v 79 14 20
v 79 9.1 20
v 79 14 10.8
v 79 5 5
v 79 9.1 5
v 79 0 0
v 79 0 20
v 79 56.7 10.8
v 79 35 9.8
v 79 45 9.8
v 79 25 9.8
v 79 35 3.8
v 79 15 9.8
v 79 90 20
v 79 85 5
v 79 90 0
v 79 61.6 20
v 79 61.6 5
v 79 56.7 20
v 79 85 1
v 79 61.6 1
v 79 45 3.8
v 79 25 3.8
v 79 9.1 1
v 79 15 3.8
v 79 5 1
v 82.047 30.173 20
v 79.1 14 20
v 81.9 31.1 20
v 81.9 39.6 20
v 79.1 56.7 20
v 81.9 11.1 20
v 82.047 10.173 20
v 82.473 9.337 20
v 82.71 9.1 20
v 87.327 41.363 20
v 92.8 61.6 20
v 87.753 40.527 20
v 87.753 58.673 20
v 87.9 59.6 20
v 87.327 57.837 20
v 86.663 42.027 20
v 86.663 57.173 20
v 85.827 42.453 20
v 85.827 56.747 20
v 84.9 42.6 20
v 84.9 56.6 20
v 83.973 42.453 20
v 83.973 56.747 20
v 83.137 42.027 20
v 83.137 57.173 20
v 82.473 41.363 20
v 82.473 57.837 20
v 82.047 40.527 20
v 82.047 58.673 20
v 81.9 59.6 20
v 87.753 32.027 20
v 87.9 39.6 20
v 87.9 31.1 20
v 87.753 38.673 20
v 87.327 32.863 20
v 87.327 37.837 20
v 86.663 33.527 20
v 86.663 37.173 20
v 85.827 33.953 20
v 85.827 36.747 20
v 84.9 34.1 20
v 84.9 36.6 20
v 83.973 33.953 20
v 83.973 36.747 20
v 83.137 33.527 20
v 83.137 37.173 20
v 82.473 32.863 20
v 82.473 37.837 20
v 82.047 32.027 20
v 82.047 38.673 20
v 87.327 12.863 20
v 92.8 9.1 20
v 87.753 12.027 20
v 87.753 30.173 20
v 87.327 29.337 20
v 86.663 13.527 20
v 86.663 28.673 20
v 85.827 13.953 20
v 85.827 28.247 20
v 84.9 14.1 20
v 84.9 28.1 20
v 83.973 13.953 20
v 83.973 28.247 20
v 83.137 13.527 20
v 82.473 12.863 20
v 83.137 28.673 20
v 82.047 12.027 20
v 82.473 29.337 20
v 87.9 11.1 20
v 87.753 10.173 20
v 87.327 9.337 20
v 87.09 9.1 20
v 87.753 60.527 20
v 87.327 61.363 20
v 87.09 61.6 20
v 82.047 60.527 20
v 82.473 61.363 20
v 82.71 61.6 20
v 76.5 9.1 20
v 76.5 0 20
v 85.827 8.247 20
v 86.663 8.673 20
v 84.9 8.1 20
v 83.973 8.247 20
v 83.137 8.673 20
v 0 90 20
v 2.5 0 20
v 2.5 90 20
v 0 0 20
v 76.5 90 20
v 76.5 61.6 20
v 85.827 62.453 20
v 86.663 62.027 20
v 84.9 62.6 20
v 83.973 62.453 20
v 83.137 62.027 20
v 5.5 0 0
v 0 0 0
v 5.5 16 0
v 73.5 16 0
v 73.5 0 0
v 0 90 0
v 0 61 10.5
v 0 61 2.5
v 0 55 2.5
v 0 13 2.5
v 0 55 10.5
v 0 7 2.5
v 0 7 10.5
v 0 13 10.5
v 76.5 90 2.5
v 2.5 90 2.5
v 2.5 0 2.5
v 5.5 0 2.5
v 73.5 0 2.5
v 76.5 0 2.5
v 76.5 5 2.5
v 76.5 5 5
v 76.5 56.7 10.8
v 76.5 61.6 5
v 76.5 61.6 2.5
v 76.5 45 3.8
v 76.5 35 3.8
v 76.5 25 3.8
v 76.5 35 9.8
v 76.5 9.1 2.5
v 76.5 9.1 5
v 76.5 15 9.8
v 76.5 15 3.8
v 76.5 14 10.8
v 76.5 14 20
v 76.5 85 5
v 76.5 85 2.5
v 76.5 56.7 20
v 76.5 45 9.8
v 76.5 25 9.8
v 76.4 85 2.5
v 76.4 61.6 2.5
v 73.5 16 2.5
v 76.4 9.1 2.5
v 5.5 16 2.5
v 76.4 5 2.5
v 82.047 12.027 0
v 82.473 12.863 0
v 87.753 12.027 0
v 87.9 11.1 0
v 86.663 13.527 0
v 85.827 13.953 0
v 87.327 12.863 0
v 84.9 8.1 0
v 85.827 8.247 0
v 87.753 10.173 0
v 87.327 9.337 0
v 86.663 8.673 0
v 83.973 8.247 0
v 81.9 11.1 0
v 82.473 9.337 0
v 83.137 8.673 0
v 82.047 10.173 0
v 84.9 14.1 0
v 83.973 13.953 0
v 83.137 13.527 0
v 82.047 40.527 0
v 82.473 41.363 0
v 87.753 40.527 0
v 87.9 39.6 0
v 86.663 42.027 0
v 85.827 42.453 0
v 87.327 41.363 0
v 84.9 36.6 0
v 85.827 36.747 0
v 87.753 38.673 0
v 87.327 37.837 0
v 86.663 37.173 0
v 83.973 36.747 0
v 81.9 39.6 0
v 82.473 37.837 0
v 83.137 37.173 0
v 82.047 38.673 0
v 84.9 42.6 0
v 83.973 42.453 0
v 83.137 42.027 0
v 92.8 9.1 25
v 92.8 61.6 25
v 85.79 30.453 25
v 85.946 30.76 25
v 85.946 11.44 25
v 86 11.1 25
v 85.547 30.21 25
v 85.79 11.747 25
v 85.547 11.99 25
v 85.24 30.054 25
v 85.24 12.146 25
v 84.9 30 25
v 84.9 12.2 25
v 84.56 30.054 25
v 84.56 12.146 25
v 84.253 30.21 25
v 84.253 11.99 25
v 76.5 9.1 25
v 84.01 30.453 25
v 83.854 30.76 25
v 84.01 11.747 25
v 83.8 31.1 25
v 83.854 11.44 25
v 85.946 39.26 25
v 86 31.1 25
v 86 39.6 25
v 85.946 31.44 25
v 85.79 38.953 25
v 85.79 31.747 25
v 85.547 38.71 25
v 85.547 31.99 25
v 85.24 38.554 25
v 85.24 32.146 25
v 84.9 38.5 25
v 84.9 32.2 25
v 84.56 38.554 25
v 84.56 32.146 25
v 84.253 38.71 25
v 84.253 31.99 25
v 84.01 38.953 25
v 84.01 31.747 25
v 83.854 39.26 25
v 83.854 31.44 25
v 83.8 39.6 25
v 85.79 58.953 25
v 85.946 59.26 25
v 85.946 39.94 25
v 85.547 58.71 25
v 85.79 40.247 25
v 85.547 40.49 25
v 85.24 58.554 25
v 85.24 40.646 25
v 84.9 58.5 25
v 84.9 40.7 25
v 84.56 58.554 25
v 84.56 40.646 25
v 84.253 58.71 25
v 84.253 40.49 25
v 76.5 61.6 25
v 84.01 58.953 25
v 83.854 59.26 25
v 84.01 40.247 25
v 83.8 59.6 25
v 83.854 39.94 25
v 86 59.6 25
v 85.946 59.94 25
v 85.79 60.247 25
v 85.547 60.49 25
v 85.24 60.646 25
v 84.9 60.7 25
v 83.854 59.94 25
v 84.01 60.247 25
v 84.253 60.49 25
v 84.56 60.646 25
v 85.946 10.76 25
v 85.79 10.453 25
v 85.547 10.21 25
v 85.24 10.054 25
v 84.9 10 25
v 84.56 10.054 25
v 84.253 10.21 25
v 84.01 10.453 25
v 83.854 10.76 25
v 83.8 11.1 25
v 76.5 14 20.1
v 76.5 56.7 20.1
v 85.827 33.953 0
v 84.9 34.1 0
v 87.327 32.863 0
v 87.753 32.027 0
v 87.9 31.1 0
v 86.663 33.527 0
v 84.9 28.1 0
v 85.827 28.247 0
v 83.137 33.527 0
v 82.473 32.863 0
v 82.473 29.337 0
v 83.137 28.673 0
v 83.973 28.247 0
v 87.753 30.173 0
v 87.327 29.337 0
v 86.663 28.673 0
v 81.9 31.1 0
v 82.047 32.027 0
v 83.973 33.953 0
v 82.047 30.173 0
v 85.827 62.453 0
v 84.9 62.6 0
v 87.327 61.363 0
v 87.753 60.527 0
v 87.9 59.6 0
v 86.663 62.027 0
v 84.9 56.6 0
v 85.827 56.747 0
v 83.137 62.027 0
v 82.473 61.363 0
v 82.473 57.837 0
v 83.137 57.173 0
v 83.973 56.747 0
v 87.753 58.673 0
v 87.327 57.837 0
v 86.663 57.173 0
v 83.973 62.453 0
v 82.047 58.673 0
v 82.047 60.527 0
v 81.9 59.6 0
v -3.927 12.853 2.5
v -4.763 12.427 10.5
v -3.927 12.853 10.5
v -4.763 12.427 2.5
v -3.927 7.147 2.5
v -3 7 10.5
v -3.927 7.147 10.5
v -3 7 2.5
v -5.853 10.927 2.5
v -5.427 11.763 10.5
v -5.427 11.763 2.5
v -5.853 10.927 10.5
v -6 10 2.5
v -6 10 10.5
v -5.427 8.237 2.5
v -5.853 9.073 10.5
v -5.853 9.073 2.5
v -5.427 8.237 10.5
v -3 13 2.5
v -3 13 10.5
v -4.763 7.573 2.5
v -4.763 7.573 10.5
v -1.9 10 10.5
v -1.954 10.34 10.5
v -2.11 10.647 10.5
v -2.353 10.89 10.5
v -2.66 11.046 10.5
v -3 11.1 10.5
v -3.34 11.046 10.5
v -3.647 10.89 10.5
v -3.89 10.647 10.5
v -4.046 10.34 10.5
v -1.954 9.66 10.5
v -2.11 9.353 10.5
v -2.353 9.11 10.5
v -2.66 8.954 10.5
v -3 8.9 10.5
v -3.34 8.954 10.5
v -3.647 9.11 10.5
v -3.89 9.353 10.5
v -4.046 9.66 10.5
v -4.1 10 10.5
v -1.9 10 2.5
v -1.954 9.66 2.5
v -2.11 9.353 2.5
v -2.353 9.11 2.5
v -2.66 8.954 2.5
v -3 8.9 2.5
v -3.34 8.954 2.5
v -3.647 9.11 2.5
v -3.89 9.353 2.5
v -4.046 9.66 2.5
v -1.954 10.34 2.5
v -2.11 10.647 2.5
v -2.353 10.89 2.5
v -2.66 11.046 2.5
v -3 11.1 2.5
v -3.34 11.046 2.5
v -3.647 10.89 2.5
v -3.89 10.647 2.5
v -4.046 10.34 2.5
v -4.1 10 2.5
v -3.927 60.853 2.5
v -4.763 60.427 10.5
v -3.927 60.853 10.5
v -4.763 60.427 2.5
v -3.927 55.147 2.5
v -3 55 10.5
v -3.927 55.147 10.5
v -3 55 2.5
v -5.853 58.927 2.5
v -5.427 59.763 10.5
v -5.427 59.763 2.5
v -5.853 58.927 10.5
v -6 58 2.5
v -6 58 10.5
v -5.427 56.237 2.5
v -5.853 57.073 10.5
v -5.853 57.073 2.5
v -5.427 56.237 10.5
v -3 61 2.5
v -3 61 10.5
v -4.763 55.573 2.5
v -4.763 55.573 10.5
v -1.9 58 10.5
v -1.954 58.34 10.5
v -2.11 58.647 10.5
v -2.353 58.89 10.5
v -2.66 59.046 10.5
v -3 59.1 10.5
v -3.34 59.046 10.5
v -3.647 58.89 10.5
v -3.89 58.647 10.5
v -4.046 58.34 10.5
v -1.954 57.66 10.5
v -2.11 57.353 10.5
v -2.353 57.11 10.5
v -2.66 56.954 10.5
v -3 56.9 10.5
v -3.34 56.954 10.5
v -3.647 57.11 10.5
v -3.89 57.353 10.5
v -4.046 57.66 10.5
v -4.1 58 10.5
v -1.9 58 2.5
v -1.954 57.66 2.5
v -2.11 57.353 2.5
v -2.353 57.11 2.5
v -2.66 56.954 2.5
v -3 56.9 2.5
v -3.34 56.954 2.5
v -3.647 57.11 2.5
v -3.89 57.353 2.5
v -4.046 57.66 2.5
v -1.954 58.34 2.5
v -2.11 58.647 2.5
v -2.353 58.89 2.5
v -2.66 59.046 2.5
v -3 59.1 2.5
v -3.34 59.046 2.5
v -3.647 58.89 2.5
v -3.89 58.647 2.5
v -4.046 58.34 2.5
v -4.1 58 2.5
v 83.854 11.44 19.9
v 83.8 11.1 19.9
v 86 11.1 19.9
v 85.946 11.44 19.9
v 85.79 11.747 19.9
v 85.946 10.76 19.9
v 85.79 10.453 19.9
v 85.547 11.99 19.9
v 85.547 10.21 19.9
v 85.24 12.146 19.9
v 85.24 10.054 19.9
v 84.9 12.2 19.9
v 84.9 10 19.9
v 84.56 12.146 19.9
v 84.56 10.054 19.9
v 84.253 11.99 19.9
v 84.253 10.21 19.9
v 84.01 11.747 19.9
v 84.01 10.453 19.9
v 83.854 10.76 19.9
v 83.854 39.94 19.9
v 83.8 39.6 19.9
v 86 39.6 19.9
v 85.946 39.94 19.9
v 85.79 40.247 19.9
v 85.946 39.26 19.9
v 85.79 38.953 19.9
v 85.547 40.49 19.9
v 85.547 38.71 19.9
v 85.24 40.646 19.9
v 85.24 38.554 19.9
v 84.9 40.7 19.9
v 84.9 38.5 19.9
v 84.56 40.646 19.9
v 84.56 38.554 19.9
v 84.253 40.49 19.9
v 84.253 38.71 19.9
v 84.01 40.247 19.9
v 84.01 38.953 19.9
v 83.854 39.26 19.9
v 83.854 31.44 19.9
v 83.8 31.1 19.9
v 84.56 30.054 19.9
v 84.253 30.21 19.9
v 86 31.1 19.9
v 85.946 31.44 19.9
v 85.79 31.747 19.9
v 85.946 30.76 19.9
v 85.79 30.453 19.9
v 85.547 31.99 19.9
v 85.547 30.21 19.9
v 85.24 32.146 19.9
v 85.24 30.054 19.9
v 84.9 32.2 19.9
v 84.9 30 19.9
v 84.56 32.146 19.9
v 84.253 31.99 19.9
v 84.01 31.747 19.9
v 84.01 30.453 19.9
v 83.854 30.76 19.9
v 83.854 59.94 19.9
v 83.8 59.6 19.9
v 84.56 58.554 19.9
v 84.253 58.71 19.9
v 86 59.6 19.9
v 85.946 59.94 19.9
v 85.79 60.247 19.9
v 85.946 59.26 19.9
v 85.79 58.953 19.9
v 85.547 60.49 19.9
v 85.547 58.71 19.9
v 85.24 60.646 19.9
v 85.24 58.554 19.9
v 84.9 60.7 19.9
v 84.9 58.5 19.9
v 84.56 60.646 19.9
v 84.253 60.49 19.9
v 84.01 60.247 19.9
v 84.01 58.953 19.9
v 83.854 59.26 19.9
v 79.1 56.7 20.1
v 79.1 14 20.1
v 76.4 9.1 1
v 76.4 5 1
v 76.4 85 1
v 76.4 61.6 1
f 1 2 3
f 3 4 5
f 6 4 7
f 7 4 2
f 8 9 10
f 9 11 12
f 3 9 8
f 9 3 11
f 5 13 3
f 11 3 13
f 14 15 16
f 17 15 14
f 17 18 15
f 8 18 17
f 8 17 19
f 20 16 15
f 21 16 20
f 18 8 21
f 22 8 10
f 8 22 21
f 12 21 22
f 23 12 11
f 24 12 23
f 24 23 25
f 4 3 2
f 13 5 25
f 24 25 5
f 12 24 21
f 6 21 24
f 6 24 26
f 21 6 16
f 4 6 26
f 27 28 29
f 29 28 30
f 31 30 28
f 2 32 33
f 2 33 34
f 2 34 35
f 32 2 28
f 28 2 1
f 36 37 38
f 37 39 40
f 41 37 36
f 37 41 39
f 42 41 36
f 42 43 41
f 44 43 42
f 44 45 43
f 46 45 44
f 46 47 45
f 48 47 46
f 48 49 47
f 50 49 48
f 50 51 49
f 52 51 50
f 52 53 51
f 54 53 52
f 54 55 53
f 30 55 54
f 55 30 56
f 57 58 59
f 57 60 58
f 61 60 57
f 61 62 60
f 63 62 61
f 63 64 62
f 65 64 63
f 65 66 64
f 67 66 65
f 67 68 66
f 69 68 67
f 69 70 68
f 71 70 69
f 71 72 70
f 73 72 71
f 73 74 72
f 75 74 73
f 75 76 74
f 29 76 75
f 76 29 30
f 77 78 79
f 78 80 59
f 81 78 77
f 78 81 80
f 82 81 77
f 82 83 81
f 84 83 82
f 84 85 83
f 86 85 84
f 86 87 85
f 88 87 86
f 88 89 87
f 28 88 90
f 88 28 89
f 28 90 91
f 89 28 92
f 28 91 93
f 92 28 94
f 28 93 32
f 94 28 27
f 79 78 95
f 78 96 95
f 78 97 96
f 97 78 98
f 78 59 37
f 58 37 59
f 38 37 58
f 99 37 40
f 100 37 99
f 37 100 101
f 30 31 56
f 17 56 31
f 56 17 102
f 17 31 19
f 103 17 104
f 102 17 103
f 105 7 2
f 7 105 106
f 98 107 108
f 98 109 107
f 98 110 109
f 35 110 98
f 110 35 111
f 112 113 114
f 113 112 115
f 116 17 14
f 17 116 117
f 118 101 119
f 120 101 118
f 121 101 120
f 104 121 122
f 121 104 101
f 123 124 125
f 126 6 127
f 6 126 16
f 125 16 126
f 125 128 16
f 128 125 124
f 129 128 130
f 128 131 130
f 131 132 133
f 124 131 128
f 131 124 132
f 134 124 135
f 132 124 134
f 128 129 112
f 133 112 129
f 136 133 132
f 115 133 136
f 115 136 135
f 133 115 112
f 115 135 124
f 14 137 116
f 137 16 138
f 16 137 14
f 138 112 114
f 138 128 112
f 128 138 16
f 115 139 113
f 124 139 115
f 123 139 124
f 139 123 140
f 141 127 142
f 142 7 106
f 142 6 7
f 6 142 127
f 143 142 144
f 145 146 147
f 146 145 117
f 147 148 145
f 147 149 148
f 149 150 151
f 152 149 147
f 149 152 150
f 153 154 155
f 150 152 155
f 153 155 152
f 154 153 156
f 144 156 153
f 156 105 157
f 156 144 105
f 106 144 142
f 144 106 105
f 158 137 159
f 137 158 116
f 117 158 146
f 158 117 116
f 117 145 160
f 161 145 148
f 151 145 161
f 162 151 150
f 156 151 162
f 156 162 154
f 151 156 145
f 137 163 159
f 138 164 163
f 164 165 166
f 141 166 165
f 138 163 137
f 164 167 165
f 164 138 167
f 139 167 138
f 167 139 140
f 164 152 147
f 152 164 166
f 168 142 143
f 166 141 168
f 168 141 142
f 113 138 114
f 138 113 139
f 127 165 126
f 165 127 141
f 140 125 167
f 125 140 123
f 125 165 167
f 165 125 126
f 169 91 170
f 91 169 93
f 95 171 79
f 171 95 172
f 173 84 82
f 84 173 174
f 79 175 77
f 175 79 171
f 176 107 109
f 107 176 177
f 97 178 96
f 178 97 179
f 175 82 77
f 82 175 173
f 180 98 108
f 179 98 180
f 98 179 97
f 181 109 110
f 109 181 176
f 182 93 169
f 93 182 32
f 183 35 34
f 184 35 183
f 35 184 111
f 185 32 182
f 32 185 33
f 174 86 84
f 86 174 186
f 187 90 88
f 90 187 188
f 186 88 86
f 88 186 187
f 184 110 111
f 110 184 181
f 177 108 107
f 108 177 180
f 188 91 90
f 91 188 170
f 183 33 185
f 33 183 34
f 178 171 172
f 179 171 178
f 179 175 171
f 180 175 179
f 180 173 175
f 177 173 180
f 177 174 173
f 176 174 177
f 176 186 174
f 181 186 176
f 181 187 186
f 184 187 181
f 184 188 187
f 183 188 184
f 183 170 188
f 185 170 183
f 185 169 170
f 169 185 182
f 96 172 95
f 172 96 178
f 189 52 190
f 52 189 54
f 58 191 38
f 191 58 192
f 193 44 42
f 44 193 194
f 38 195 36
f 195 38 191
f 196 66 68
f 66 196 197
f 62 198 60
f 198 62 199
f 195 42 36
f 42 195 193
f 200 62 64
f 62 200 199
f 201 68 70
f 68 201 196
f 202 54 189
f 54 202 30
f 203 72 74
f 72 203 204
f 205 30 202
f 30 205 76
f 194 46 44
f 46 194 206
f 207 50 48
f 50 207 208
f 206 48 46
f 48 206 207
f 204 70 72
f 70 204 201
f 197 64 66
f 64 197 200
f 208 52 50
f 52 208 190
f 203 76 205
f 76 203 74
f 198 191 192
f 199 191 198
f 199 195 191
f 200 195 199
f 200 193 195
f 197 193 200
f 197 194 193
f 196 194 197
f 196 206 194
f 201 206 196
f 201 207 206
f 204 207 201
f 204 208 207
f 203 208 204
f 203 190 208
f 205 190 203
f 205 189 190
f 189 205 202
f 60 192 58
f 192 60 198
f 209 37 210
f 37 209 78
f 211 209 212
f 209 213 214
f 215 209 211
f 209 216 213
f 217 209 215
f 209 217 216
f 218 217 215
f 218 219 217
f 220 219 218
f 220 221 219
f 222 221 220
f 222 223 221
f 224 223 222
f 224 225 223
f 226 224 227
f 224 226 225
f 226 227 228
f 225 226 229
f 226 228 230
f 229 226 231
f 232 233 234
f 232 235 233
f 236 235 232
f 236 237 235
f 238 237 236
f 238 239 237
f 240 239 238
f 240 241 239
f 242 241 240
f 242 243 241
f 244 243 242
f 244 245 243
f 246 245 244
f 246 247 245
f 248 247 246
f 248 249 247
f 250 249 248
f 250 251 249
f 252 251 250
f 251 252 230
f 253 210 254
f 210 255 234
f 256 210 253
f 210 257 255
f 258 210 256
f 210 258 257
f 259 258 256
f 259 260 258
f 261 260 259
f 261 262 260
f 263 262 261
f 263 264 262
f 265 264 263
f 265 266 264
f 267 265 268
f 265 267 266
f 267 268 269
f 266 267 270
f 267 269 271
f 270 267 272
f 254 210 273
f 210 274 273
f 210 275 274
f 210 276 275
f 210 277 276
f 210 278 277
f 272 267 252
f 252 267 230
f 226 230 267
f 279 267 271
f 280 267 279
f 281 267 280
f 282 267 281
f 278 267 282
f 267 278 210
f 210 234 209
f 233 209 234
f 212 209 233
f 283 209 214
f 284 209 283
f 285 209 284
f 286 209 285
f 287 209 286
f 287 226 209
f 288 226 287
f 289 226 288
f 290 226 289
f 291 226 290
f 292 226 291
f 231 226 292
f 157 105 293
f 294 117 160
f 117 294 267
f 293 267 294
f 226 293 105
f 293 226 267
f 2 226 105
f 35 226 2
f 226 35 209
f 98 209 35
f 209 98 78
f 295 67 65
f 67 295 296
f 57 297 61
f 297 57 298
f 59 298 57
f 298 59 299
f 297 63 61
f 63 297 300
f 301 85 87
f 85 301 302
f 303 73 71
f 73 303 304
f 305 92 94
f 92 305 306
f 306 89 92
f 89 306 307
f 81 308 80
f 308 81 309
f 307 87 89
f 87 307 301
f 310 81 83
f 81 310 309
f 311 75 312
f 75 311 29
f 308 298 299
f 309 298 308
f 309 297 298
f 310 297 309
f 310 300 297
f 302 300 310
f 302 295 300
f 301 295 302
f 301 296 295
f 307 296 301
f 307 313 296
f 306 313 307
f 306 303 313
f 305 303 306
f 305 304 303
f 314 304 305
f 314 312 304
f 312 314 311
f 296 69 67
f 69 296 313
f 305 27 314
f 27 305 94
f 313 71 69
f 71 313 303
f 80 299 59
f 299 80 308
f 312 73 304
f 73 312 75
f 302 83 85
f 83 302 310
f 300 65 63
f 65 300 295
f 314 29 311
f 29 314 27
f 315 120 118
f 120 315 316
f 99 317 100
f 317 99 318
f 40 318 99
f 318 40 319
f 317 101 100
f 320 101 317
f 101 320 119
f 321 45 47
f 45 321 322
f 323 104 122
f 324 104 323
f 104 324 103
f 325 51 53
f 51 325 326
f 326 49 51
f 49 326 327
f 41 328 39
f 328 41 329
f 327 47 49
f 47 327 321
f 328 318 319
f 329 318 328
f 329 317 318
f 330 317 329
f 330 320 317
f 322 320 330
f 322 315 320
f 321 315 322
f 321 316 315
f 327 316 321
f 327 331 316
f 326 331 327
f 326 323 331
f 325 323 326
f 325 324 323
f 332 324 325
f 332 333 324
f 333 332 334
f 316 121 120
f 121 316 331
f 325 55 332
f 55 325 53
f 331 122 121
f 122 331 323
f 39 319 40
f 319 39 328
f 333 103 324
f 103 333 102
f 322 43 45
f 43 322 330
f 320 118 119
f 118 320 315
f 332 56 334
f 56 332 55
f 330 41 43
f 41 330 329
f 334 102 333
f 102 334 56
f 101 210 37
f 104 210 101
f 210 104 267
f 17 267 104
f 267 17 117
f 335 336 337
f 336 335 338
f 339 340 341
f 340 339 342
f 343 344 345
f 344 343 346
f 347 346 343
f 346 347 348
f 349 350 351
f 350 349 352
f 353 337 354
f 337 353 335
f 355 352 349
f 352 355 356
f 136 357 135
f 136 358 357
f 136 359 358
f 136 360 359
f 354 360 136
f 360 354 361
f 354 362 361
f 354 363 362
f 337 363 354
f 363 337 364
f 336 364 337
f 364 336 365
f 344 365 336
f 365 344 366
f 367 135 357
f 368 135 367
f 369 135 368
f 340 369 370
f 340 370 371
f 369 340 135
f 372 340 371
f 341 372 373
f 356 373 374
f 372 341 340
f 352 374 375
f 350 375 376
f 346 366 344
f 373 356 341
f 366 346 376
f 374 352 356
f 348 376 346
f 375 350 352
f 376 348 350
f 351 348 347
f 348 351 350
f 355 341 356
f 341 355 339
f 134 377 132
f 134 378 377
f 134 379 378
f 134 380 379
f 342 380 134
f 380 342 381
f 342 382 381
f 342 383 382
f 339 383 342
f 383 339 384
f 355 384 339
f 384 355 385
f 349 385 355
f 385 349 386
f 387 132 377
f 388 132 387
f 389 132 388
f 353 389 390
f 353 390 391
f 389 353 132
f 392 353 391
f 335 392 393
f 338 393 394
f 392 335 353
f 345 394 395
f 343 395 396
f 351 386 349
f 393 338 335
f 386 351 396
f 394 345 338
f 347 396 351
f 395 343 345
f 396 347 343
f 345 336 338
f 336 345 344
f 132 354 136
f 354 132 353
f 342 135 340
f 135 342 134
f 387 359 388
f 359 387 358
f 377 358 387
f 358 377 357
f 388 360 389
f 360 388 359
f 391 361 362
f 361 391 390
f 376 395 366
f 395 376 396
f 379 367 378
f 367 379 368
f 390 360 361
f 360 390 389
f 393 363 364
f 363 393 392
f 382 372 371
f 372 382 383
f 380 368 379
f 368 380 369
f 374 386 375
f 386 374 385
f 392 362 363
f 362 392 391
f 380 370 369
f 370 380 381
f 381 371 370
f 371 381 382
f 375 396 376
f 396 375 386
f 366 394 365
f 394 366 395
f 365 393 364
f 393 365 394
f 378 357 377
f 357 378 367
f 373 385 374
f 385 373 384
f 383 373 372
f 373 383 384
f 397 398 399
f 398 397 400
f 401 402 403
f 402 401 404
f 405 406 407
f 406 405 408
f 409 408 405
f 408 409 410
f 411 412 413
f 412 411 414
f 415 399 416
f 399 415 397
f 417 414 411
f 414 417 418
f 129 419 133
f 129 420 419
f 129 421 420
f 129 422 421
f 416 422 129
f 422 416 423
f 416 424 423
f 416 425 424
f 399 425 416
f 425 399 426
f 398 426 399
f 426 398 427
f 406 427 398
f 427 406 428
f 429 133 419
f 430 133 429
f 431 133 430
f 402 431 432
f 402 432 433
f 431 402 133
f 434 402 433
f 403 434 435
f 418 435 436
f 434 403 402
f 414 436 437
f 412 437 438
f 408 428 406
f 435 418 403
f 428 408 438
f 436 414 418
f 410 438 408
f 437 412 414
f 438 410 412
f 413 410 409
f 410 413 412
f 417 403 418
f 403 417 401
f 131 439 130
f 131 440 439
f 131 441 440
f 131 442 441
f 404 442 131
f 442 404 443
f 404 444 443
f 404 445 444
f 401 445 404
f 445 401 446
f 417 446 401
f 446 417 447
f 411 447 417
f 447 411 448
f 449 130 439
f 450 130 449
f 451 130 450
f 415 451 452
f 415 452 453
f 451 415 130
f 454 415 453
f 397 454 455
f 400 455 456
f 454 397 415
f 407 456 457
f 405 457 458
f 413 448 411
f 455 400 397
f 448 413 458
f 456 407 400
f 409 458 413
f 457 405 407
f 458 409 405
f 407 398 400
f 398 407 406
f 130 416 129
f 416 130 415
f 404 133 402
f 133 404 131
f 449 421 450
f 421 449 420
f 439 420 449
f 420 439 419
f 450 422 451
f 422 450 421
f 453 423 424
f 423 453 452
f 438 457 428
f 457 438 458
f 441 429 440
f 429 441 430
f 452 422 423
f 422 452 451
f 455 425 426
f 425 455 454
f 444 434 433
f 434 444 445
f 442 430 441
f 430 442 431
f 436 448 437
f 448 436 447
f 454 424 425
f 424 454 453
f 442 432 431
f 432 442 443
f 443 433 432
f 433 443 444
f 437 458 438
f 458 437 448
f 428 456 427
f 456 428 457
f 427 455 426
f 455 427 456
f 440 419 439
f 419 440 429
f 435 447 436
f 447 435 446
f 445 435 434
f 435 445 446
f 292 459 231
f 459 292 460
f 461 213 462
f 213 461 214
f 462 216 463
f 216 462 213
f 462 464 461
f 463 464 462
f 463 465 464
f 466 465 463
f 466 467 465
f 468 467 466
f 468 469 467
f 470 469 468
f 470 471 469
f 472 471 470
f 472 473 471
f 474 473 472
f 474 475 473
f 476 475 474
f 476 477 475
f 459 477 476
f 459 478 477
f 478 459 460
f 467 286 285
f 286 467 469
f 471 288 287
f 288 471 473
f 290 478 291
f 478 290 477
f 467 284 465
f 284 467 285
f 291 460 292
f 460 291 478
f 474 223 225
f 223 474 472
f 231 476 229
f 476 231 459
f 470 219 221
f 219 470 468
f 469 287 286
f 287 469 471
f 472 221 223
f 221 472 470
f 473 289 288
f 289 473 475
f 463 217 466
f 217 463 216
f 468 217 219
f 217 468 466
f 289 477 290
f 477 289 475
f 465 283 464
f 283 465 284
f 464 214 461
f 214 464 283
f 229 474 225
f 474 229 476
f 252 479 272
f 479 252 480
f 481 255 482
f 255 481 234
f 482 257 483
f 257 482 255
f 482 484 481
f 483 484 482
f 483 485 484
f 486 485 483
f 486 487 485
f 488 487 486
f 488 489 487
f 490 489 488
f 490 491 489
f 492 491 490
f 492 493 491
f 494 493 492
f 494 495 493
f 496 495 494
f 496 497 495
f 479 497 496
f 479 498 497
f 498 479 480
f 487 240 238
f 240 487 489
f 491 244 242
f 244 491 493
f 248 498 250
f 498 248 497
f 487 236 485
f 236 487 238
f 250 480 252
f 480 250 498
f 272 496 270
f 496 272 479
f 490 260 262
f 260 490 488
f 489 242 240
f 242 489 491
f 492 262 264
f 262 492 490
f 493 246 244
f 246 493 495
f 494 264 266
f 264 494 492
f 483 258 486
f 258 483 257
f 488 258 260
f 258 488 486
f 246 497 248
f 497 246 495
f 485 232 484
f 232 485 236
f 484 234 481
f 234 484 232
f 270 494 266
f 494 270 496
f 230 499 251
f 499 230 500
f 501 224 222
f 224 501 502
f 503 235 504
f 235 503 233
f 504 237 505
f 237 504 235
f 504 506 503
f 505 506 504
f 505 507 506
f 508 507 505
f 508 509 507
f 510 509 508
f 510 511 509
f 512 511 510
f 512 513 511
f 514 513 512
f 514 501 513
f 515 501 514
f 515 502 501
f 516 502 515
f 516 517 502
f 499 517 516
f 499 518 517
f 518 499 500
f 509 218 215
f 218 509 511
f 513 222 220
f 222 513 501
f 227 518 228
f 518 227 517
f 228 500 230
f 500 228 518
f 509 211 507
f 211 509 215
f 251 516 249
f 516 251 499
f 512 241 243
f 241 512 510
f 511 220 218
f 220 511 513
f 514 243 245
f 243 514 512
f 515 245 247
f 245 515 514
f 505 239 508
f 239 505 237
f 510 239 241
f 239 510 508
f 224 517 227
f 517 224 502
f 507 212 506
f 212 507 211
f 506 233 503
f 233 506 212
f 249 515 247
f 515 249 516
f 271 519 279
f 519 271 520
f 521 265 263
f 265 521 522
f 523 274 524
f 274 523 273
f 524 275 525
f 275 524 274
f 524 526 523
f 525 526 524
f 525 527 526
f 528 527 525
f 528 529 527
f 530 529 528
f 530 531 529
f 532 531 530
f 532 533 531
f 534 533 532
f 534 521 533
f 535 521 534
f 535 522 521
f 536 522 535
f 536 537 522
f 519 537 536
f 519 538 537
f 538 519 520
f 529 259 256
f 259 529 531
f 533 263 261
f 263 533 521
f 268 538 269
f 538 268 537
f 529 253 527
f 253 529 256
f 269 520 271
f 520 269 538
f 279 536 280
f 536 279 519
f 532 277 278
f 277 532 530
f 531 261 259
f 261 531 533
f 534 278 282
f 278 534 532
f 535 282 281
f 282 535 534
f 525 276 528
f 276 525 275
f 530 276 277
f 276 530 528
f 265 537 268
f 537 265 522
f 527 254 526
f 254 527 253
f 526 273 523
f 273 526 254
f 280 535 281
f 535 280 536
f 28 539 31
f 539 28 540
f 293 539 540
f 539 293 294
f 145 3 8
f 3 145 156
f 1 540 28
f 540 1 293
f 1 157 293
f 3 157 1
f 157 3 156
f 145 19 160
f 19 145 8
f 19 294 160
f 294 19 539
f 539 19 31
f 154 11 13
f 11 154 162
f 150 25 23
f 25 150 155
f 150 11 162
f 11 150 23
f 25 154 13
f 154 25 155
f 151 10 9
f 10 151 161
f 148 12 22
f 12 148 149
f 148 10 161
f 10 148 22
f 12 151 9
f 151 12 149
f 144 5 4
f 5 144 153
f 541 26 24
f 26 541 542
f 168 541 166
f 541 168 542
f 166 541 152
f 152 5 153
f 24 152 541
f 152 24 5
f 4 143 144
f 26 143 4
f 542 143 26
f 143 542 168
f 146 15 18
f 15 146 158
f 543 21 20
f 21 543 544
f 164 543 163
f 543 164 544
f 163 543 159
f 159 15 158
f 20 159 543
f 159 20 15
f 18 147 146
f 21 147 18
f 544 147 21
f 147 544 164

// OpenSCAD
/*
 * MobileMash – 3D-printable cradle for Pixel 10 Pro
 *
 * Two SG90 micro servos mount UPSIDE-DOWN on the right-side rail.
 * The servo hangs below a shelf at the wall top, with the shaft/arm
 * at phone-button height.  The arm sweeps in XY to press the power
 * and volume-down buttons.
 *
 * The shelf is on TOP of the wall (faces up), so no print supports
 * are needed.  Vertical support columns from the base hold up the
 * shelf where it extends beyond the wall.
 *
 * Phone dimensions (Pixel 10 Pro):
 *   152.8 x 72 x 8.6 mm
 *   Camera bump: 3 mm protrusion, starts 10 mm from top, ~23 mm tall,
 *                2 mm inset from each side edge.
 *
 * Button layout (right side, measured from top of phone):
 *   Power button center:      ~40 mm from top
 *   Volume-down button center: ~60 mm from top
 *   (Both buttons are ~12 mm long)
 *
 * SG90 servo body: 22.2 x 11.8 x 22.7 mm  (h x d x w)
 * SG90 mounting tabs: 32.5 mm total (tab-to-tab along body w)
 * Measured: 13 mm from tab screw-hole center to shaft tip.
 *
 * Print settings:
 *   Layer height: 0.2 mm
 *   Infill: 20%+
 *   Material: PLA or PETG
 *   Supports: NOT needed
 *
 * SPDX-License-Identifier: Apache-2.0
 */

// ── Tunables ────────────────────────────────────────────────────────────

phone_w   = 72;      // width  (X)
phone_h   = 152.8;   // height (Y)
phone_d   = 8.6;     // depth/thickness (Z)

clearance = 1.0;

wall = 2.5;

cradle_len = 90;
cradle_y_offset = 20;

// ── Camera bump (Pixel 10 Pro) ──────────────────────────────────────────
cam_bump_protrusion = 3;
cam_bump_from_top   = 10;
cam_bump_height     = 26;    // 23 mm + margin
cam_bump_inset      = 2;
cam_bump_y_start = max(0, cam_bump_from_top - cradle_y_offset);
cam_bump_y_end   = cam_bump_from_top + cam_bump_height - cradle_y_offset;
cam_bump_w       = phone_w - 2 * cam_bump_inset;

// ── SG90 servo dimensions ───────────────────────────────────────────────
sg90_body_w  = 22.7;  // body length (along Y in cradle)
sg90_body_d  = 11.8;  // body depth  (along X, away from phone)
sg90_body_h  = 22.2;  // body height (along Z when upright)
sg90_tab_w   = 32.5;  // tab-to-tab span along Y
sg90_tab_h   = 2.5;   // tab thickness (Z)
sg90_shaft_offset = 6; // shaft center from one end of body along Y

// When flipped upside-down the tab ears are ~6.7 mm above the gear-housing face.
sg90_flipped_tab_z = 6.7;

// Measured: 13 mm from tab screw-hole center to shaft tip.
sg90_shaft_protrusion = 5;
sg90_arm_drop = 4;    // arm center below gear-housing face

// Shelf thickness on top of the wall for screw engagement.
shelf_thickness = 5;

// Button positions from top of phone
power_btn_y = 40;
voldn_btn_y = 60;

m2_hole_d = 2.2;

// ── Derived values ──────────────────────────────────────────────────────
inner_w = phone_w + 2 * clearance;
inner_d = phone_d + clearance;
outer_w = inner_w + 2 * wall;

// Target arm Z — middle of the phone's side face.
arm_z = wall + phone_d / 2;   // ≈ 6.8 mm

// Gear-housing face (bottom of flipped servo).
servo_bottom_z = arm_z + sg90_arm_drop;   // ≈ 10.8 mm

// The shelf sits ON TOP of the wall.  The servo tab tops press up
// against the shelf underside.  Calculate the required wall height
// so the tab tops are flush with the wall top.
//   wall_top = servo_bottom_z + sg90_flipped_tab_z + sg90_tab_h
//            = 10.8 + 6.7 + 2.5 = 20.0
lip_h = servo_bottom_z + sg90_flipped_tab_z + sg90_tab_h - wall;  // ≈ 17.5

wall_top = wall + lip_h;  // ≈ 20.0

// ── Modules ─────────────────────────────────────────────────────────────

module cradle_base() {
    difference() {
        cube([outer_w, cradle_len, wall_top]);

        // Inner pocket for the phone (open top)
        translate([wall, -0.1, wall])
            cube([inner_w, cradle_len + 0.2, lip_h + 1]);

        // Camera bump relief
        if (cam_bump_y_end > 0) {
            translate([wall + clearance + cam_bump_inset,
                       cam_bump_y_start,
                       -0.1])
                cube([cam_bump_w, cam_bump_y_end - cam_bump_y_start, wall + 0.2]);
        }
    }
}

module servo_pocket(btn_y) {
    // Cut the right wall where the servo body sits.
    local_y = btn_y - cradle_y_offset;
    body_start_y = local_y - sg90_shaft_offset;

    translate([outer_w - wall - 0.1,
               body_start_y,
               servo_bottom_z])
        cube([wall + 0.2,
              sg90_body_w,
              wall_top - servo_bottom_z + 0.1]);
}

module arm_slot(btn_y) {
    // Slot through the right wall for the servo arm.
    local_y = btn_y - cradle_y_offset;

    translate([outer_w - wall - 0.1,
               local_y - 5,
               arm_z - 3])
        cube([wall + 0.2, 10, 6]);
}

module servo_shelf(btn_y) {
    // Shelf on TOP of the wall.  The servo tabs press up against
    // the underside; screws go down from above into the tab holes.
    //
    // The shelf extends outward (in X) beyond the wall to cover the
    // servo body width.  Vertical support columns from the base hold
    // up the cantilevered portion — no print supports needed.
    local_y = btn_y - cradle_y_offset;
    body_start_y = local_y - sg90_shaft_offset;
    tab_start = body_start_y - (sg90_tab_w - sg90_body_w) / 2;
    tab_extent = (sg90_tab_w - sg90_body_w) / 2;

    shelf_x = outer_w - wall;
    shelf_w = wall + sg90_body_d + 2;  // extends past servo body

    // Shelf plate on wall top
    translate([shelf_x, tab_start, wall_top])
        cube([shelf_w, sg90_tab_w, shelf_thickness]);

    // Support columns from base to shelf at each screw-hole position.
    // These are outside the body Y range (in the tab-ear zones) so
    // they don't block the servo body.  They print as simple vertical
    // pillars — no supports needed.
    col_x = outer_w + sg90_body_d / 2;
    for (hole_y = [body_start_y - tab_extent + 2,
                   body_start_y + sg90_body_w + tab_extent - 2]) {
        translate([col_x, hole_y, 0])
            cylinder(h = wall_top, d = 6, $fn = 20);
    }
}

module servo_mount_holes(btn_y) {
    // Vertical screw holes down through the shelf into the tab ears.
    local_y = btn_y - cradle_y_offset;
    body_start_y = local_y - sg90_shaft_offset;
    tab_extent = (sg90_tab_w - sg90_body_w) / 2;

    col_x = outer_w + sg90_body_d / 2;

    for (hole_y = [body_start_y - tab_extent + 2,
                   body_start_y + sg90_body_w + tab_extent - 2]) {
        translate([col_x,
                   hole_y,
                   wall_top - 0.1])
            cylinder(h = shelf_thickness + 0.2,
                     d = m2_hole_d, $fn = 20);
    }
}

function servo_tab_start(btn_y) =
    (btn_y - cradle_y_offset) - sg90_shaft_offset
    - (sg90_tab_w - sg90_body_w) / 2;

module esp32_mount() {
    for (dy = [10, 58]) {
        translate([-3, dy, wall])
            difference() {
                union() {
                    cylinder(h = 8, d = 6, $fn = 20);
                    translate([0, -3, 0])
                        cube([3, 6, 8]);
                }
                cylinder(h = 9, d = m2_hole_d, $fn = 20);
            }
    }
}

// ── Assembly ────────────────────────────────────────────────────────────

module mobilemash_cradle() {
    difference() {
        union() {
            cradle_base();
            servo_shelf(power_btn_y);
            servo_shelf(voldn_btn_y);
            esp32_mount();
        }

        servo_pocket(power_btn_y);
        servo_pocket(voldn_btn_y);

        arm_slot(power_btn_y);
        arm_slot(voldn_btn_y);

        servo_mount_holes(power_btn_y);
        servo_mount_holes(voldn_btn_y);

        // Cable routing channel — split to skip the servo shelf zones.
        cable_ch_x  = outer_w - wall - 0.1;
        cable_ch_xw = wall + 0.2;
        shelf1_start = servo_tab_start(power_btn_y);
        shelf2_end   = servo_tab_start(voldn_btn_y) + sg90_tab_w;

        translate([cable_ch_x, 5, 1])
            cube([cable_ch_xw, shelf1_start - 5, 4]);
        translate([cable_ch_x, shelf2_end, 1])
            cube([cable_ch_xw, cradle_len - 5 - shelf2_end, 4]);
    }
}

mobilemash_cradle();
